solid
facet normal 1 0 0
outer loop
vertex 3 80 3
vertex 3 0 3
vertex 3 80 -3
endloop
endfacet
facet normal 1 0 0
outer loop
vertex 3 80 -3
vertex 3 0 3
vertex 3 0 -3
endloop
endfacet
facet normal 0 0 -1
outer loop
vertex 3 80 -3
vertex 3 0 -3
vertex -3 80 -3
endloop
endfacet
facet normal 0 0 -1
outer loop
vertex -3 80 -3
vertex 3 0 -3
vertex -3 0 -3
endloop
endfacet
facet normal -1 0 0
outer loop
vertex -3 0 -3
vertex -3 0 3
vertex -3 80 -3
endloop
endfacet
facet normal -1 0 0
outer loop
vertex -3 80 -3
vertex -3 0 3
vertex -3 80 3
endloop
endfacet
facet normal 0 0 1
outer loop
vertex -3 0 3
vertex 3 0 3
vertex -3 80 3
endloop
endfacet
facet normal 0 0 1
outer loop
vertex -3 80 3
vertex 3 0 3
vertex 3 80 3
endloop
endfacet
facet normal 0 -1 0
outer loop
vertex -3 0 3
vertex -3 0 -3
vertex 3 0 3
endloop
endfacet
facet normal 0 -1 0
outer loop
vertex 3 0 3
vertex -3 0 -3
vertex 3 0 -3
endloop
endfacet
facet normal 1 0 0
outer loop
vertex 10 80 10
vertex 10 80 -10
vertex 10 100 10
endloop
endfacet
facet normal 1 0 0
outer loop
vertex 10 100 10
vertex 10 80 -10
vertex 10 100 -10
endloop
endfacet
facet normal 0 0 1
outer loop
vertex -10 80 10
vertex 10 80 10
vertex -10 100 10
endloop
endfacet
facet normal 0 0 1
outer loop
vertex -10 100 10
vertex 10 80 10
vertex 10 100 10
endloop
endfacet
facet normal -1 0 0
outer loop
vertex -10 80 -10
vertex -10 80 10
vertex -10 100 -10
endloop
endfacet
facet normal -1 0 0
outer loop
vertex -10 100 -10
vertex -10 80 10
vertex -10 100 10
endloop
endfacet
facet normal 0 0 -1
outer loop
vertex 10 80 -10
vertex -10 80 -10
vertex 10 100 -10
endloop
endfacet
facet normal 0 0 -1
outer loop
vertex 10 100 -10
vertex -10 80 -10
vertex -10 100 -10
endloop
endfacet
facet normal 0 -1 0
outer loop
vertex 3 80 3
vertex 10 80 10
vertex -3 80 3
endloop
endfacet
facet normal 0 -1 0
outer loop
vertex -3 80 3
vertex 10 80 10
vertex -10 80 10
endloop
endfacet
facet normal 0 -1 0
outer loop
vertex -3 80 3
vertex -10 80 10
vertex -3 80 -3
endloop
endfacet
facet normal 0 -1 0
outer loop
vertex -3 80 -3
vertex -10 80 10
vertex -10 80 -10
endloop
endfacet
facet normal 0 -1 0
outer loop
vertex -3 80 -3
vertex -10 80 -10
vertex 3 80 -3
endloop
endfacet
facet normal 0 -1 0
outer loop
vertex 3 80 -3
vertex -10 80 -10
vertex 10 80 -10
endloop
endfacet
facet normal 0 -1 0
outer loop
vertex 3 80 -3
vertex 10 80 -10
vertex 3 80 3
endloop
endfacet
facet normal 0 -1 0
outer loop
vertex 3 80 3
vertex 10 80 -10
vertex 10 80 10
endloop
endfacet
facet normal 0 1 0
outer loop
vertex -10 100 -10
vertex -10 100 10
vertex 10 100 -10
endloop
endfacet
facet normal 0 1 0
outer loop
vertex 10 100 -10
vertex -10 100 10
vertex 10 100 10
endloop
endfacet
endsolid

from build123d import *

# Parameters (mm, degrees)
SKETCH1_W           = 6
SKETCH1_H           = 6
BOSS_EXTRUDE1_DEPTH = 100
SKETCH2_W           = 20
SKETCH2_H           = 20
BOSS_EXTRUDE2_DEPTH = 20


with BuildPart() as part:
    # Sketch1 → Boss-Extrude1 (new body)
    with BuildSketch(Plane(origin=(0, 0, 0), x_dir=(1, 0, 0), z_dir=(0, 1, 0))):
        Rectangle(SKETCH1_W, SKETCH1_H)
    extrude(amount=BOSS_EXTRUDE1_DEPTH)

    # Sketch2 → Boss-Extrude2 (add)
    with BuildSketch(Plane(origin=(0, 100, 0), x_dir=(1, 0, 0), z_dir=(0, 1, 0))):
        Rectangle(SKETCH2_W, SKETCH2_H)
    extrude(amount=-BOSS_EXTRUDE2_DEPTH)


solid = part.part
